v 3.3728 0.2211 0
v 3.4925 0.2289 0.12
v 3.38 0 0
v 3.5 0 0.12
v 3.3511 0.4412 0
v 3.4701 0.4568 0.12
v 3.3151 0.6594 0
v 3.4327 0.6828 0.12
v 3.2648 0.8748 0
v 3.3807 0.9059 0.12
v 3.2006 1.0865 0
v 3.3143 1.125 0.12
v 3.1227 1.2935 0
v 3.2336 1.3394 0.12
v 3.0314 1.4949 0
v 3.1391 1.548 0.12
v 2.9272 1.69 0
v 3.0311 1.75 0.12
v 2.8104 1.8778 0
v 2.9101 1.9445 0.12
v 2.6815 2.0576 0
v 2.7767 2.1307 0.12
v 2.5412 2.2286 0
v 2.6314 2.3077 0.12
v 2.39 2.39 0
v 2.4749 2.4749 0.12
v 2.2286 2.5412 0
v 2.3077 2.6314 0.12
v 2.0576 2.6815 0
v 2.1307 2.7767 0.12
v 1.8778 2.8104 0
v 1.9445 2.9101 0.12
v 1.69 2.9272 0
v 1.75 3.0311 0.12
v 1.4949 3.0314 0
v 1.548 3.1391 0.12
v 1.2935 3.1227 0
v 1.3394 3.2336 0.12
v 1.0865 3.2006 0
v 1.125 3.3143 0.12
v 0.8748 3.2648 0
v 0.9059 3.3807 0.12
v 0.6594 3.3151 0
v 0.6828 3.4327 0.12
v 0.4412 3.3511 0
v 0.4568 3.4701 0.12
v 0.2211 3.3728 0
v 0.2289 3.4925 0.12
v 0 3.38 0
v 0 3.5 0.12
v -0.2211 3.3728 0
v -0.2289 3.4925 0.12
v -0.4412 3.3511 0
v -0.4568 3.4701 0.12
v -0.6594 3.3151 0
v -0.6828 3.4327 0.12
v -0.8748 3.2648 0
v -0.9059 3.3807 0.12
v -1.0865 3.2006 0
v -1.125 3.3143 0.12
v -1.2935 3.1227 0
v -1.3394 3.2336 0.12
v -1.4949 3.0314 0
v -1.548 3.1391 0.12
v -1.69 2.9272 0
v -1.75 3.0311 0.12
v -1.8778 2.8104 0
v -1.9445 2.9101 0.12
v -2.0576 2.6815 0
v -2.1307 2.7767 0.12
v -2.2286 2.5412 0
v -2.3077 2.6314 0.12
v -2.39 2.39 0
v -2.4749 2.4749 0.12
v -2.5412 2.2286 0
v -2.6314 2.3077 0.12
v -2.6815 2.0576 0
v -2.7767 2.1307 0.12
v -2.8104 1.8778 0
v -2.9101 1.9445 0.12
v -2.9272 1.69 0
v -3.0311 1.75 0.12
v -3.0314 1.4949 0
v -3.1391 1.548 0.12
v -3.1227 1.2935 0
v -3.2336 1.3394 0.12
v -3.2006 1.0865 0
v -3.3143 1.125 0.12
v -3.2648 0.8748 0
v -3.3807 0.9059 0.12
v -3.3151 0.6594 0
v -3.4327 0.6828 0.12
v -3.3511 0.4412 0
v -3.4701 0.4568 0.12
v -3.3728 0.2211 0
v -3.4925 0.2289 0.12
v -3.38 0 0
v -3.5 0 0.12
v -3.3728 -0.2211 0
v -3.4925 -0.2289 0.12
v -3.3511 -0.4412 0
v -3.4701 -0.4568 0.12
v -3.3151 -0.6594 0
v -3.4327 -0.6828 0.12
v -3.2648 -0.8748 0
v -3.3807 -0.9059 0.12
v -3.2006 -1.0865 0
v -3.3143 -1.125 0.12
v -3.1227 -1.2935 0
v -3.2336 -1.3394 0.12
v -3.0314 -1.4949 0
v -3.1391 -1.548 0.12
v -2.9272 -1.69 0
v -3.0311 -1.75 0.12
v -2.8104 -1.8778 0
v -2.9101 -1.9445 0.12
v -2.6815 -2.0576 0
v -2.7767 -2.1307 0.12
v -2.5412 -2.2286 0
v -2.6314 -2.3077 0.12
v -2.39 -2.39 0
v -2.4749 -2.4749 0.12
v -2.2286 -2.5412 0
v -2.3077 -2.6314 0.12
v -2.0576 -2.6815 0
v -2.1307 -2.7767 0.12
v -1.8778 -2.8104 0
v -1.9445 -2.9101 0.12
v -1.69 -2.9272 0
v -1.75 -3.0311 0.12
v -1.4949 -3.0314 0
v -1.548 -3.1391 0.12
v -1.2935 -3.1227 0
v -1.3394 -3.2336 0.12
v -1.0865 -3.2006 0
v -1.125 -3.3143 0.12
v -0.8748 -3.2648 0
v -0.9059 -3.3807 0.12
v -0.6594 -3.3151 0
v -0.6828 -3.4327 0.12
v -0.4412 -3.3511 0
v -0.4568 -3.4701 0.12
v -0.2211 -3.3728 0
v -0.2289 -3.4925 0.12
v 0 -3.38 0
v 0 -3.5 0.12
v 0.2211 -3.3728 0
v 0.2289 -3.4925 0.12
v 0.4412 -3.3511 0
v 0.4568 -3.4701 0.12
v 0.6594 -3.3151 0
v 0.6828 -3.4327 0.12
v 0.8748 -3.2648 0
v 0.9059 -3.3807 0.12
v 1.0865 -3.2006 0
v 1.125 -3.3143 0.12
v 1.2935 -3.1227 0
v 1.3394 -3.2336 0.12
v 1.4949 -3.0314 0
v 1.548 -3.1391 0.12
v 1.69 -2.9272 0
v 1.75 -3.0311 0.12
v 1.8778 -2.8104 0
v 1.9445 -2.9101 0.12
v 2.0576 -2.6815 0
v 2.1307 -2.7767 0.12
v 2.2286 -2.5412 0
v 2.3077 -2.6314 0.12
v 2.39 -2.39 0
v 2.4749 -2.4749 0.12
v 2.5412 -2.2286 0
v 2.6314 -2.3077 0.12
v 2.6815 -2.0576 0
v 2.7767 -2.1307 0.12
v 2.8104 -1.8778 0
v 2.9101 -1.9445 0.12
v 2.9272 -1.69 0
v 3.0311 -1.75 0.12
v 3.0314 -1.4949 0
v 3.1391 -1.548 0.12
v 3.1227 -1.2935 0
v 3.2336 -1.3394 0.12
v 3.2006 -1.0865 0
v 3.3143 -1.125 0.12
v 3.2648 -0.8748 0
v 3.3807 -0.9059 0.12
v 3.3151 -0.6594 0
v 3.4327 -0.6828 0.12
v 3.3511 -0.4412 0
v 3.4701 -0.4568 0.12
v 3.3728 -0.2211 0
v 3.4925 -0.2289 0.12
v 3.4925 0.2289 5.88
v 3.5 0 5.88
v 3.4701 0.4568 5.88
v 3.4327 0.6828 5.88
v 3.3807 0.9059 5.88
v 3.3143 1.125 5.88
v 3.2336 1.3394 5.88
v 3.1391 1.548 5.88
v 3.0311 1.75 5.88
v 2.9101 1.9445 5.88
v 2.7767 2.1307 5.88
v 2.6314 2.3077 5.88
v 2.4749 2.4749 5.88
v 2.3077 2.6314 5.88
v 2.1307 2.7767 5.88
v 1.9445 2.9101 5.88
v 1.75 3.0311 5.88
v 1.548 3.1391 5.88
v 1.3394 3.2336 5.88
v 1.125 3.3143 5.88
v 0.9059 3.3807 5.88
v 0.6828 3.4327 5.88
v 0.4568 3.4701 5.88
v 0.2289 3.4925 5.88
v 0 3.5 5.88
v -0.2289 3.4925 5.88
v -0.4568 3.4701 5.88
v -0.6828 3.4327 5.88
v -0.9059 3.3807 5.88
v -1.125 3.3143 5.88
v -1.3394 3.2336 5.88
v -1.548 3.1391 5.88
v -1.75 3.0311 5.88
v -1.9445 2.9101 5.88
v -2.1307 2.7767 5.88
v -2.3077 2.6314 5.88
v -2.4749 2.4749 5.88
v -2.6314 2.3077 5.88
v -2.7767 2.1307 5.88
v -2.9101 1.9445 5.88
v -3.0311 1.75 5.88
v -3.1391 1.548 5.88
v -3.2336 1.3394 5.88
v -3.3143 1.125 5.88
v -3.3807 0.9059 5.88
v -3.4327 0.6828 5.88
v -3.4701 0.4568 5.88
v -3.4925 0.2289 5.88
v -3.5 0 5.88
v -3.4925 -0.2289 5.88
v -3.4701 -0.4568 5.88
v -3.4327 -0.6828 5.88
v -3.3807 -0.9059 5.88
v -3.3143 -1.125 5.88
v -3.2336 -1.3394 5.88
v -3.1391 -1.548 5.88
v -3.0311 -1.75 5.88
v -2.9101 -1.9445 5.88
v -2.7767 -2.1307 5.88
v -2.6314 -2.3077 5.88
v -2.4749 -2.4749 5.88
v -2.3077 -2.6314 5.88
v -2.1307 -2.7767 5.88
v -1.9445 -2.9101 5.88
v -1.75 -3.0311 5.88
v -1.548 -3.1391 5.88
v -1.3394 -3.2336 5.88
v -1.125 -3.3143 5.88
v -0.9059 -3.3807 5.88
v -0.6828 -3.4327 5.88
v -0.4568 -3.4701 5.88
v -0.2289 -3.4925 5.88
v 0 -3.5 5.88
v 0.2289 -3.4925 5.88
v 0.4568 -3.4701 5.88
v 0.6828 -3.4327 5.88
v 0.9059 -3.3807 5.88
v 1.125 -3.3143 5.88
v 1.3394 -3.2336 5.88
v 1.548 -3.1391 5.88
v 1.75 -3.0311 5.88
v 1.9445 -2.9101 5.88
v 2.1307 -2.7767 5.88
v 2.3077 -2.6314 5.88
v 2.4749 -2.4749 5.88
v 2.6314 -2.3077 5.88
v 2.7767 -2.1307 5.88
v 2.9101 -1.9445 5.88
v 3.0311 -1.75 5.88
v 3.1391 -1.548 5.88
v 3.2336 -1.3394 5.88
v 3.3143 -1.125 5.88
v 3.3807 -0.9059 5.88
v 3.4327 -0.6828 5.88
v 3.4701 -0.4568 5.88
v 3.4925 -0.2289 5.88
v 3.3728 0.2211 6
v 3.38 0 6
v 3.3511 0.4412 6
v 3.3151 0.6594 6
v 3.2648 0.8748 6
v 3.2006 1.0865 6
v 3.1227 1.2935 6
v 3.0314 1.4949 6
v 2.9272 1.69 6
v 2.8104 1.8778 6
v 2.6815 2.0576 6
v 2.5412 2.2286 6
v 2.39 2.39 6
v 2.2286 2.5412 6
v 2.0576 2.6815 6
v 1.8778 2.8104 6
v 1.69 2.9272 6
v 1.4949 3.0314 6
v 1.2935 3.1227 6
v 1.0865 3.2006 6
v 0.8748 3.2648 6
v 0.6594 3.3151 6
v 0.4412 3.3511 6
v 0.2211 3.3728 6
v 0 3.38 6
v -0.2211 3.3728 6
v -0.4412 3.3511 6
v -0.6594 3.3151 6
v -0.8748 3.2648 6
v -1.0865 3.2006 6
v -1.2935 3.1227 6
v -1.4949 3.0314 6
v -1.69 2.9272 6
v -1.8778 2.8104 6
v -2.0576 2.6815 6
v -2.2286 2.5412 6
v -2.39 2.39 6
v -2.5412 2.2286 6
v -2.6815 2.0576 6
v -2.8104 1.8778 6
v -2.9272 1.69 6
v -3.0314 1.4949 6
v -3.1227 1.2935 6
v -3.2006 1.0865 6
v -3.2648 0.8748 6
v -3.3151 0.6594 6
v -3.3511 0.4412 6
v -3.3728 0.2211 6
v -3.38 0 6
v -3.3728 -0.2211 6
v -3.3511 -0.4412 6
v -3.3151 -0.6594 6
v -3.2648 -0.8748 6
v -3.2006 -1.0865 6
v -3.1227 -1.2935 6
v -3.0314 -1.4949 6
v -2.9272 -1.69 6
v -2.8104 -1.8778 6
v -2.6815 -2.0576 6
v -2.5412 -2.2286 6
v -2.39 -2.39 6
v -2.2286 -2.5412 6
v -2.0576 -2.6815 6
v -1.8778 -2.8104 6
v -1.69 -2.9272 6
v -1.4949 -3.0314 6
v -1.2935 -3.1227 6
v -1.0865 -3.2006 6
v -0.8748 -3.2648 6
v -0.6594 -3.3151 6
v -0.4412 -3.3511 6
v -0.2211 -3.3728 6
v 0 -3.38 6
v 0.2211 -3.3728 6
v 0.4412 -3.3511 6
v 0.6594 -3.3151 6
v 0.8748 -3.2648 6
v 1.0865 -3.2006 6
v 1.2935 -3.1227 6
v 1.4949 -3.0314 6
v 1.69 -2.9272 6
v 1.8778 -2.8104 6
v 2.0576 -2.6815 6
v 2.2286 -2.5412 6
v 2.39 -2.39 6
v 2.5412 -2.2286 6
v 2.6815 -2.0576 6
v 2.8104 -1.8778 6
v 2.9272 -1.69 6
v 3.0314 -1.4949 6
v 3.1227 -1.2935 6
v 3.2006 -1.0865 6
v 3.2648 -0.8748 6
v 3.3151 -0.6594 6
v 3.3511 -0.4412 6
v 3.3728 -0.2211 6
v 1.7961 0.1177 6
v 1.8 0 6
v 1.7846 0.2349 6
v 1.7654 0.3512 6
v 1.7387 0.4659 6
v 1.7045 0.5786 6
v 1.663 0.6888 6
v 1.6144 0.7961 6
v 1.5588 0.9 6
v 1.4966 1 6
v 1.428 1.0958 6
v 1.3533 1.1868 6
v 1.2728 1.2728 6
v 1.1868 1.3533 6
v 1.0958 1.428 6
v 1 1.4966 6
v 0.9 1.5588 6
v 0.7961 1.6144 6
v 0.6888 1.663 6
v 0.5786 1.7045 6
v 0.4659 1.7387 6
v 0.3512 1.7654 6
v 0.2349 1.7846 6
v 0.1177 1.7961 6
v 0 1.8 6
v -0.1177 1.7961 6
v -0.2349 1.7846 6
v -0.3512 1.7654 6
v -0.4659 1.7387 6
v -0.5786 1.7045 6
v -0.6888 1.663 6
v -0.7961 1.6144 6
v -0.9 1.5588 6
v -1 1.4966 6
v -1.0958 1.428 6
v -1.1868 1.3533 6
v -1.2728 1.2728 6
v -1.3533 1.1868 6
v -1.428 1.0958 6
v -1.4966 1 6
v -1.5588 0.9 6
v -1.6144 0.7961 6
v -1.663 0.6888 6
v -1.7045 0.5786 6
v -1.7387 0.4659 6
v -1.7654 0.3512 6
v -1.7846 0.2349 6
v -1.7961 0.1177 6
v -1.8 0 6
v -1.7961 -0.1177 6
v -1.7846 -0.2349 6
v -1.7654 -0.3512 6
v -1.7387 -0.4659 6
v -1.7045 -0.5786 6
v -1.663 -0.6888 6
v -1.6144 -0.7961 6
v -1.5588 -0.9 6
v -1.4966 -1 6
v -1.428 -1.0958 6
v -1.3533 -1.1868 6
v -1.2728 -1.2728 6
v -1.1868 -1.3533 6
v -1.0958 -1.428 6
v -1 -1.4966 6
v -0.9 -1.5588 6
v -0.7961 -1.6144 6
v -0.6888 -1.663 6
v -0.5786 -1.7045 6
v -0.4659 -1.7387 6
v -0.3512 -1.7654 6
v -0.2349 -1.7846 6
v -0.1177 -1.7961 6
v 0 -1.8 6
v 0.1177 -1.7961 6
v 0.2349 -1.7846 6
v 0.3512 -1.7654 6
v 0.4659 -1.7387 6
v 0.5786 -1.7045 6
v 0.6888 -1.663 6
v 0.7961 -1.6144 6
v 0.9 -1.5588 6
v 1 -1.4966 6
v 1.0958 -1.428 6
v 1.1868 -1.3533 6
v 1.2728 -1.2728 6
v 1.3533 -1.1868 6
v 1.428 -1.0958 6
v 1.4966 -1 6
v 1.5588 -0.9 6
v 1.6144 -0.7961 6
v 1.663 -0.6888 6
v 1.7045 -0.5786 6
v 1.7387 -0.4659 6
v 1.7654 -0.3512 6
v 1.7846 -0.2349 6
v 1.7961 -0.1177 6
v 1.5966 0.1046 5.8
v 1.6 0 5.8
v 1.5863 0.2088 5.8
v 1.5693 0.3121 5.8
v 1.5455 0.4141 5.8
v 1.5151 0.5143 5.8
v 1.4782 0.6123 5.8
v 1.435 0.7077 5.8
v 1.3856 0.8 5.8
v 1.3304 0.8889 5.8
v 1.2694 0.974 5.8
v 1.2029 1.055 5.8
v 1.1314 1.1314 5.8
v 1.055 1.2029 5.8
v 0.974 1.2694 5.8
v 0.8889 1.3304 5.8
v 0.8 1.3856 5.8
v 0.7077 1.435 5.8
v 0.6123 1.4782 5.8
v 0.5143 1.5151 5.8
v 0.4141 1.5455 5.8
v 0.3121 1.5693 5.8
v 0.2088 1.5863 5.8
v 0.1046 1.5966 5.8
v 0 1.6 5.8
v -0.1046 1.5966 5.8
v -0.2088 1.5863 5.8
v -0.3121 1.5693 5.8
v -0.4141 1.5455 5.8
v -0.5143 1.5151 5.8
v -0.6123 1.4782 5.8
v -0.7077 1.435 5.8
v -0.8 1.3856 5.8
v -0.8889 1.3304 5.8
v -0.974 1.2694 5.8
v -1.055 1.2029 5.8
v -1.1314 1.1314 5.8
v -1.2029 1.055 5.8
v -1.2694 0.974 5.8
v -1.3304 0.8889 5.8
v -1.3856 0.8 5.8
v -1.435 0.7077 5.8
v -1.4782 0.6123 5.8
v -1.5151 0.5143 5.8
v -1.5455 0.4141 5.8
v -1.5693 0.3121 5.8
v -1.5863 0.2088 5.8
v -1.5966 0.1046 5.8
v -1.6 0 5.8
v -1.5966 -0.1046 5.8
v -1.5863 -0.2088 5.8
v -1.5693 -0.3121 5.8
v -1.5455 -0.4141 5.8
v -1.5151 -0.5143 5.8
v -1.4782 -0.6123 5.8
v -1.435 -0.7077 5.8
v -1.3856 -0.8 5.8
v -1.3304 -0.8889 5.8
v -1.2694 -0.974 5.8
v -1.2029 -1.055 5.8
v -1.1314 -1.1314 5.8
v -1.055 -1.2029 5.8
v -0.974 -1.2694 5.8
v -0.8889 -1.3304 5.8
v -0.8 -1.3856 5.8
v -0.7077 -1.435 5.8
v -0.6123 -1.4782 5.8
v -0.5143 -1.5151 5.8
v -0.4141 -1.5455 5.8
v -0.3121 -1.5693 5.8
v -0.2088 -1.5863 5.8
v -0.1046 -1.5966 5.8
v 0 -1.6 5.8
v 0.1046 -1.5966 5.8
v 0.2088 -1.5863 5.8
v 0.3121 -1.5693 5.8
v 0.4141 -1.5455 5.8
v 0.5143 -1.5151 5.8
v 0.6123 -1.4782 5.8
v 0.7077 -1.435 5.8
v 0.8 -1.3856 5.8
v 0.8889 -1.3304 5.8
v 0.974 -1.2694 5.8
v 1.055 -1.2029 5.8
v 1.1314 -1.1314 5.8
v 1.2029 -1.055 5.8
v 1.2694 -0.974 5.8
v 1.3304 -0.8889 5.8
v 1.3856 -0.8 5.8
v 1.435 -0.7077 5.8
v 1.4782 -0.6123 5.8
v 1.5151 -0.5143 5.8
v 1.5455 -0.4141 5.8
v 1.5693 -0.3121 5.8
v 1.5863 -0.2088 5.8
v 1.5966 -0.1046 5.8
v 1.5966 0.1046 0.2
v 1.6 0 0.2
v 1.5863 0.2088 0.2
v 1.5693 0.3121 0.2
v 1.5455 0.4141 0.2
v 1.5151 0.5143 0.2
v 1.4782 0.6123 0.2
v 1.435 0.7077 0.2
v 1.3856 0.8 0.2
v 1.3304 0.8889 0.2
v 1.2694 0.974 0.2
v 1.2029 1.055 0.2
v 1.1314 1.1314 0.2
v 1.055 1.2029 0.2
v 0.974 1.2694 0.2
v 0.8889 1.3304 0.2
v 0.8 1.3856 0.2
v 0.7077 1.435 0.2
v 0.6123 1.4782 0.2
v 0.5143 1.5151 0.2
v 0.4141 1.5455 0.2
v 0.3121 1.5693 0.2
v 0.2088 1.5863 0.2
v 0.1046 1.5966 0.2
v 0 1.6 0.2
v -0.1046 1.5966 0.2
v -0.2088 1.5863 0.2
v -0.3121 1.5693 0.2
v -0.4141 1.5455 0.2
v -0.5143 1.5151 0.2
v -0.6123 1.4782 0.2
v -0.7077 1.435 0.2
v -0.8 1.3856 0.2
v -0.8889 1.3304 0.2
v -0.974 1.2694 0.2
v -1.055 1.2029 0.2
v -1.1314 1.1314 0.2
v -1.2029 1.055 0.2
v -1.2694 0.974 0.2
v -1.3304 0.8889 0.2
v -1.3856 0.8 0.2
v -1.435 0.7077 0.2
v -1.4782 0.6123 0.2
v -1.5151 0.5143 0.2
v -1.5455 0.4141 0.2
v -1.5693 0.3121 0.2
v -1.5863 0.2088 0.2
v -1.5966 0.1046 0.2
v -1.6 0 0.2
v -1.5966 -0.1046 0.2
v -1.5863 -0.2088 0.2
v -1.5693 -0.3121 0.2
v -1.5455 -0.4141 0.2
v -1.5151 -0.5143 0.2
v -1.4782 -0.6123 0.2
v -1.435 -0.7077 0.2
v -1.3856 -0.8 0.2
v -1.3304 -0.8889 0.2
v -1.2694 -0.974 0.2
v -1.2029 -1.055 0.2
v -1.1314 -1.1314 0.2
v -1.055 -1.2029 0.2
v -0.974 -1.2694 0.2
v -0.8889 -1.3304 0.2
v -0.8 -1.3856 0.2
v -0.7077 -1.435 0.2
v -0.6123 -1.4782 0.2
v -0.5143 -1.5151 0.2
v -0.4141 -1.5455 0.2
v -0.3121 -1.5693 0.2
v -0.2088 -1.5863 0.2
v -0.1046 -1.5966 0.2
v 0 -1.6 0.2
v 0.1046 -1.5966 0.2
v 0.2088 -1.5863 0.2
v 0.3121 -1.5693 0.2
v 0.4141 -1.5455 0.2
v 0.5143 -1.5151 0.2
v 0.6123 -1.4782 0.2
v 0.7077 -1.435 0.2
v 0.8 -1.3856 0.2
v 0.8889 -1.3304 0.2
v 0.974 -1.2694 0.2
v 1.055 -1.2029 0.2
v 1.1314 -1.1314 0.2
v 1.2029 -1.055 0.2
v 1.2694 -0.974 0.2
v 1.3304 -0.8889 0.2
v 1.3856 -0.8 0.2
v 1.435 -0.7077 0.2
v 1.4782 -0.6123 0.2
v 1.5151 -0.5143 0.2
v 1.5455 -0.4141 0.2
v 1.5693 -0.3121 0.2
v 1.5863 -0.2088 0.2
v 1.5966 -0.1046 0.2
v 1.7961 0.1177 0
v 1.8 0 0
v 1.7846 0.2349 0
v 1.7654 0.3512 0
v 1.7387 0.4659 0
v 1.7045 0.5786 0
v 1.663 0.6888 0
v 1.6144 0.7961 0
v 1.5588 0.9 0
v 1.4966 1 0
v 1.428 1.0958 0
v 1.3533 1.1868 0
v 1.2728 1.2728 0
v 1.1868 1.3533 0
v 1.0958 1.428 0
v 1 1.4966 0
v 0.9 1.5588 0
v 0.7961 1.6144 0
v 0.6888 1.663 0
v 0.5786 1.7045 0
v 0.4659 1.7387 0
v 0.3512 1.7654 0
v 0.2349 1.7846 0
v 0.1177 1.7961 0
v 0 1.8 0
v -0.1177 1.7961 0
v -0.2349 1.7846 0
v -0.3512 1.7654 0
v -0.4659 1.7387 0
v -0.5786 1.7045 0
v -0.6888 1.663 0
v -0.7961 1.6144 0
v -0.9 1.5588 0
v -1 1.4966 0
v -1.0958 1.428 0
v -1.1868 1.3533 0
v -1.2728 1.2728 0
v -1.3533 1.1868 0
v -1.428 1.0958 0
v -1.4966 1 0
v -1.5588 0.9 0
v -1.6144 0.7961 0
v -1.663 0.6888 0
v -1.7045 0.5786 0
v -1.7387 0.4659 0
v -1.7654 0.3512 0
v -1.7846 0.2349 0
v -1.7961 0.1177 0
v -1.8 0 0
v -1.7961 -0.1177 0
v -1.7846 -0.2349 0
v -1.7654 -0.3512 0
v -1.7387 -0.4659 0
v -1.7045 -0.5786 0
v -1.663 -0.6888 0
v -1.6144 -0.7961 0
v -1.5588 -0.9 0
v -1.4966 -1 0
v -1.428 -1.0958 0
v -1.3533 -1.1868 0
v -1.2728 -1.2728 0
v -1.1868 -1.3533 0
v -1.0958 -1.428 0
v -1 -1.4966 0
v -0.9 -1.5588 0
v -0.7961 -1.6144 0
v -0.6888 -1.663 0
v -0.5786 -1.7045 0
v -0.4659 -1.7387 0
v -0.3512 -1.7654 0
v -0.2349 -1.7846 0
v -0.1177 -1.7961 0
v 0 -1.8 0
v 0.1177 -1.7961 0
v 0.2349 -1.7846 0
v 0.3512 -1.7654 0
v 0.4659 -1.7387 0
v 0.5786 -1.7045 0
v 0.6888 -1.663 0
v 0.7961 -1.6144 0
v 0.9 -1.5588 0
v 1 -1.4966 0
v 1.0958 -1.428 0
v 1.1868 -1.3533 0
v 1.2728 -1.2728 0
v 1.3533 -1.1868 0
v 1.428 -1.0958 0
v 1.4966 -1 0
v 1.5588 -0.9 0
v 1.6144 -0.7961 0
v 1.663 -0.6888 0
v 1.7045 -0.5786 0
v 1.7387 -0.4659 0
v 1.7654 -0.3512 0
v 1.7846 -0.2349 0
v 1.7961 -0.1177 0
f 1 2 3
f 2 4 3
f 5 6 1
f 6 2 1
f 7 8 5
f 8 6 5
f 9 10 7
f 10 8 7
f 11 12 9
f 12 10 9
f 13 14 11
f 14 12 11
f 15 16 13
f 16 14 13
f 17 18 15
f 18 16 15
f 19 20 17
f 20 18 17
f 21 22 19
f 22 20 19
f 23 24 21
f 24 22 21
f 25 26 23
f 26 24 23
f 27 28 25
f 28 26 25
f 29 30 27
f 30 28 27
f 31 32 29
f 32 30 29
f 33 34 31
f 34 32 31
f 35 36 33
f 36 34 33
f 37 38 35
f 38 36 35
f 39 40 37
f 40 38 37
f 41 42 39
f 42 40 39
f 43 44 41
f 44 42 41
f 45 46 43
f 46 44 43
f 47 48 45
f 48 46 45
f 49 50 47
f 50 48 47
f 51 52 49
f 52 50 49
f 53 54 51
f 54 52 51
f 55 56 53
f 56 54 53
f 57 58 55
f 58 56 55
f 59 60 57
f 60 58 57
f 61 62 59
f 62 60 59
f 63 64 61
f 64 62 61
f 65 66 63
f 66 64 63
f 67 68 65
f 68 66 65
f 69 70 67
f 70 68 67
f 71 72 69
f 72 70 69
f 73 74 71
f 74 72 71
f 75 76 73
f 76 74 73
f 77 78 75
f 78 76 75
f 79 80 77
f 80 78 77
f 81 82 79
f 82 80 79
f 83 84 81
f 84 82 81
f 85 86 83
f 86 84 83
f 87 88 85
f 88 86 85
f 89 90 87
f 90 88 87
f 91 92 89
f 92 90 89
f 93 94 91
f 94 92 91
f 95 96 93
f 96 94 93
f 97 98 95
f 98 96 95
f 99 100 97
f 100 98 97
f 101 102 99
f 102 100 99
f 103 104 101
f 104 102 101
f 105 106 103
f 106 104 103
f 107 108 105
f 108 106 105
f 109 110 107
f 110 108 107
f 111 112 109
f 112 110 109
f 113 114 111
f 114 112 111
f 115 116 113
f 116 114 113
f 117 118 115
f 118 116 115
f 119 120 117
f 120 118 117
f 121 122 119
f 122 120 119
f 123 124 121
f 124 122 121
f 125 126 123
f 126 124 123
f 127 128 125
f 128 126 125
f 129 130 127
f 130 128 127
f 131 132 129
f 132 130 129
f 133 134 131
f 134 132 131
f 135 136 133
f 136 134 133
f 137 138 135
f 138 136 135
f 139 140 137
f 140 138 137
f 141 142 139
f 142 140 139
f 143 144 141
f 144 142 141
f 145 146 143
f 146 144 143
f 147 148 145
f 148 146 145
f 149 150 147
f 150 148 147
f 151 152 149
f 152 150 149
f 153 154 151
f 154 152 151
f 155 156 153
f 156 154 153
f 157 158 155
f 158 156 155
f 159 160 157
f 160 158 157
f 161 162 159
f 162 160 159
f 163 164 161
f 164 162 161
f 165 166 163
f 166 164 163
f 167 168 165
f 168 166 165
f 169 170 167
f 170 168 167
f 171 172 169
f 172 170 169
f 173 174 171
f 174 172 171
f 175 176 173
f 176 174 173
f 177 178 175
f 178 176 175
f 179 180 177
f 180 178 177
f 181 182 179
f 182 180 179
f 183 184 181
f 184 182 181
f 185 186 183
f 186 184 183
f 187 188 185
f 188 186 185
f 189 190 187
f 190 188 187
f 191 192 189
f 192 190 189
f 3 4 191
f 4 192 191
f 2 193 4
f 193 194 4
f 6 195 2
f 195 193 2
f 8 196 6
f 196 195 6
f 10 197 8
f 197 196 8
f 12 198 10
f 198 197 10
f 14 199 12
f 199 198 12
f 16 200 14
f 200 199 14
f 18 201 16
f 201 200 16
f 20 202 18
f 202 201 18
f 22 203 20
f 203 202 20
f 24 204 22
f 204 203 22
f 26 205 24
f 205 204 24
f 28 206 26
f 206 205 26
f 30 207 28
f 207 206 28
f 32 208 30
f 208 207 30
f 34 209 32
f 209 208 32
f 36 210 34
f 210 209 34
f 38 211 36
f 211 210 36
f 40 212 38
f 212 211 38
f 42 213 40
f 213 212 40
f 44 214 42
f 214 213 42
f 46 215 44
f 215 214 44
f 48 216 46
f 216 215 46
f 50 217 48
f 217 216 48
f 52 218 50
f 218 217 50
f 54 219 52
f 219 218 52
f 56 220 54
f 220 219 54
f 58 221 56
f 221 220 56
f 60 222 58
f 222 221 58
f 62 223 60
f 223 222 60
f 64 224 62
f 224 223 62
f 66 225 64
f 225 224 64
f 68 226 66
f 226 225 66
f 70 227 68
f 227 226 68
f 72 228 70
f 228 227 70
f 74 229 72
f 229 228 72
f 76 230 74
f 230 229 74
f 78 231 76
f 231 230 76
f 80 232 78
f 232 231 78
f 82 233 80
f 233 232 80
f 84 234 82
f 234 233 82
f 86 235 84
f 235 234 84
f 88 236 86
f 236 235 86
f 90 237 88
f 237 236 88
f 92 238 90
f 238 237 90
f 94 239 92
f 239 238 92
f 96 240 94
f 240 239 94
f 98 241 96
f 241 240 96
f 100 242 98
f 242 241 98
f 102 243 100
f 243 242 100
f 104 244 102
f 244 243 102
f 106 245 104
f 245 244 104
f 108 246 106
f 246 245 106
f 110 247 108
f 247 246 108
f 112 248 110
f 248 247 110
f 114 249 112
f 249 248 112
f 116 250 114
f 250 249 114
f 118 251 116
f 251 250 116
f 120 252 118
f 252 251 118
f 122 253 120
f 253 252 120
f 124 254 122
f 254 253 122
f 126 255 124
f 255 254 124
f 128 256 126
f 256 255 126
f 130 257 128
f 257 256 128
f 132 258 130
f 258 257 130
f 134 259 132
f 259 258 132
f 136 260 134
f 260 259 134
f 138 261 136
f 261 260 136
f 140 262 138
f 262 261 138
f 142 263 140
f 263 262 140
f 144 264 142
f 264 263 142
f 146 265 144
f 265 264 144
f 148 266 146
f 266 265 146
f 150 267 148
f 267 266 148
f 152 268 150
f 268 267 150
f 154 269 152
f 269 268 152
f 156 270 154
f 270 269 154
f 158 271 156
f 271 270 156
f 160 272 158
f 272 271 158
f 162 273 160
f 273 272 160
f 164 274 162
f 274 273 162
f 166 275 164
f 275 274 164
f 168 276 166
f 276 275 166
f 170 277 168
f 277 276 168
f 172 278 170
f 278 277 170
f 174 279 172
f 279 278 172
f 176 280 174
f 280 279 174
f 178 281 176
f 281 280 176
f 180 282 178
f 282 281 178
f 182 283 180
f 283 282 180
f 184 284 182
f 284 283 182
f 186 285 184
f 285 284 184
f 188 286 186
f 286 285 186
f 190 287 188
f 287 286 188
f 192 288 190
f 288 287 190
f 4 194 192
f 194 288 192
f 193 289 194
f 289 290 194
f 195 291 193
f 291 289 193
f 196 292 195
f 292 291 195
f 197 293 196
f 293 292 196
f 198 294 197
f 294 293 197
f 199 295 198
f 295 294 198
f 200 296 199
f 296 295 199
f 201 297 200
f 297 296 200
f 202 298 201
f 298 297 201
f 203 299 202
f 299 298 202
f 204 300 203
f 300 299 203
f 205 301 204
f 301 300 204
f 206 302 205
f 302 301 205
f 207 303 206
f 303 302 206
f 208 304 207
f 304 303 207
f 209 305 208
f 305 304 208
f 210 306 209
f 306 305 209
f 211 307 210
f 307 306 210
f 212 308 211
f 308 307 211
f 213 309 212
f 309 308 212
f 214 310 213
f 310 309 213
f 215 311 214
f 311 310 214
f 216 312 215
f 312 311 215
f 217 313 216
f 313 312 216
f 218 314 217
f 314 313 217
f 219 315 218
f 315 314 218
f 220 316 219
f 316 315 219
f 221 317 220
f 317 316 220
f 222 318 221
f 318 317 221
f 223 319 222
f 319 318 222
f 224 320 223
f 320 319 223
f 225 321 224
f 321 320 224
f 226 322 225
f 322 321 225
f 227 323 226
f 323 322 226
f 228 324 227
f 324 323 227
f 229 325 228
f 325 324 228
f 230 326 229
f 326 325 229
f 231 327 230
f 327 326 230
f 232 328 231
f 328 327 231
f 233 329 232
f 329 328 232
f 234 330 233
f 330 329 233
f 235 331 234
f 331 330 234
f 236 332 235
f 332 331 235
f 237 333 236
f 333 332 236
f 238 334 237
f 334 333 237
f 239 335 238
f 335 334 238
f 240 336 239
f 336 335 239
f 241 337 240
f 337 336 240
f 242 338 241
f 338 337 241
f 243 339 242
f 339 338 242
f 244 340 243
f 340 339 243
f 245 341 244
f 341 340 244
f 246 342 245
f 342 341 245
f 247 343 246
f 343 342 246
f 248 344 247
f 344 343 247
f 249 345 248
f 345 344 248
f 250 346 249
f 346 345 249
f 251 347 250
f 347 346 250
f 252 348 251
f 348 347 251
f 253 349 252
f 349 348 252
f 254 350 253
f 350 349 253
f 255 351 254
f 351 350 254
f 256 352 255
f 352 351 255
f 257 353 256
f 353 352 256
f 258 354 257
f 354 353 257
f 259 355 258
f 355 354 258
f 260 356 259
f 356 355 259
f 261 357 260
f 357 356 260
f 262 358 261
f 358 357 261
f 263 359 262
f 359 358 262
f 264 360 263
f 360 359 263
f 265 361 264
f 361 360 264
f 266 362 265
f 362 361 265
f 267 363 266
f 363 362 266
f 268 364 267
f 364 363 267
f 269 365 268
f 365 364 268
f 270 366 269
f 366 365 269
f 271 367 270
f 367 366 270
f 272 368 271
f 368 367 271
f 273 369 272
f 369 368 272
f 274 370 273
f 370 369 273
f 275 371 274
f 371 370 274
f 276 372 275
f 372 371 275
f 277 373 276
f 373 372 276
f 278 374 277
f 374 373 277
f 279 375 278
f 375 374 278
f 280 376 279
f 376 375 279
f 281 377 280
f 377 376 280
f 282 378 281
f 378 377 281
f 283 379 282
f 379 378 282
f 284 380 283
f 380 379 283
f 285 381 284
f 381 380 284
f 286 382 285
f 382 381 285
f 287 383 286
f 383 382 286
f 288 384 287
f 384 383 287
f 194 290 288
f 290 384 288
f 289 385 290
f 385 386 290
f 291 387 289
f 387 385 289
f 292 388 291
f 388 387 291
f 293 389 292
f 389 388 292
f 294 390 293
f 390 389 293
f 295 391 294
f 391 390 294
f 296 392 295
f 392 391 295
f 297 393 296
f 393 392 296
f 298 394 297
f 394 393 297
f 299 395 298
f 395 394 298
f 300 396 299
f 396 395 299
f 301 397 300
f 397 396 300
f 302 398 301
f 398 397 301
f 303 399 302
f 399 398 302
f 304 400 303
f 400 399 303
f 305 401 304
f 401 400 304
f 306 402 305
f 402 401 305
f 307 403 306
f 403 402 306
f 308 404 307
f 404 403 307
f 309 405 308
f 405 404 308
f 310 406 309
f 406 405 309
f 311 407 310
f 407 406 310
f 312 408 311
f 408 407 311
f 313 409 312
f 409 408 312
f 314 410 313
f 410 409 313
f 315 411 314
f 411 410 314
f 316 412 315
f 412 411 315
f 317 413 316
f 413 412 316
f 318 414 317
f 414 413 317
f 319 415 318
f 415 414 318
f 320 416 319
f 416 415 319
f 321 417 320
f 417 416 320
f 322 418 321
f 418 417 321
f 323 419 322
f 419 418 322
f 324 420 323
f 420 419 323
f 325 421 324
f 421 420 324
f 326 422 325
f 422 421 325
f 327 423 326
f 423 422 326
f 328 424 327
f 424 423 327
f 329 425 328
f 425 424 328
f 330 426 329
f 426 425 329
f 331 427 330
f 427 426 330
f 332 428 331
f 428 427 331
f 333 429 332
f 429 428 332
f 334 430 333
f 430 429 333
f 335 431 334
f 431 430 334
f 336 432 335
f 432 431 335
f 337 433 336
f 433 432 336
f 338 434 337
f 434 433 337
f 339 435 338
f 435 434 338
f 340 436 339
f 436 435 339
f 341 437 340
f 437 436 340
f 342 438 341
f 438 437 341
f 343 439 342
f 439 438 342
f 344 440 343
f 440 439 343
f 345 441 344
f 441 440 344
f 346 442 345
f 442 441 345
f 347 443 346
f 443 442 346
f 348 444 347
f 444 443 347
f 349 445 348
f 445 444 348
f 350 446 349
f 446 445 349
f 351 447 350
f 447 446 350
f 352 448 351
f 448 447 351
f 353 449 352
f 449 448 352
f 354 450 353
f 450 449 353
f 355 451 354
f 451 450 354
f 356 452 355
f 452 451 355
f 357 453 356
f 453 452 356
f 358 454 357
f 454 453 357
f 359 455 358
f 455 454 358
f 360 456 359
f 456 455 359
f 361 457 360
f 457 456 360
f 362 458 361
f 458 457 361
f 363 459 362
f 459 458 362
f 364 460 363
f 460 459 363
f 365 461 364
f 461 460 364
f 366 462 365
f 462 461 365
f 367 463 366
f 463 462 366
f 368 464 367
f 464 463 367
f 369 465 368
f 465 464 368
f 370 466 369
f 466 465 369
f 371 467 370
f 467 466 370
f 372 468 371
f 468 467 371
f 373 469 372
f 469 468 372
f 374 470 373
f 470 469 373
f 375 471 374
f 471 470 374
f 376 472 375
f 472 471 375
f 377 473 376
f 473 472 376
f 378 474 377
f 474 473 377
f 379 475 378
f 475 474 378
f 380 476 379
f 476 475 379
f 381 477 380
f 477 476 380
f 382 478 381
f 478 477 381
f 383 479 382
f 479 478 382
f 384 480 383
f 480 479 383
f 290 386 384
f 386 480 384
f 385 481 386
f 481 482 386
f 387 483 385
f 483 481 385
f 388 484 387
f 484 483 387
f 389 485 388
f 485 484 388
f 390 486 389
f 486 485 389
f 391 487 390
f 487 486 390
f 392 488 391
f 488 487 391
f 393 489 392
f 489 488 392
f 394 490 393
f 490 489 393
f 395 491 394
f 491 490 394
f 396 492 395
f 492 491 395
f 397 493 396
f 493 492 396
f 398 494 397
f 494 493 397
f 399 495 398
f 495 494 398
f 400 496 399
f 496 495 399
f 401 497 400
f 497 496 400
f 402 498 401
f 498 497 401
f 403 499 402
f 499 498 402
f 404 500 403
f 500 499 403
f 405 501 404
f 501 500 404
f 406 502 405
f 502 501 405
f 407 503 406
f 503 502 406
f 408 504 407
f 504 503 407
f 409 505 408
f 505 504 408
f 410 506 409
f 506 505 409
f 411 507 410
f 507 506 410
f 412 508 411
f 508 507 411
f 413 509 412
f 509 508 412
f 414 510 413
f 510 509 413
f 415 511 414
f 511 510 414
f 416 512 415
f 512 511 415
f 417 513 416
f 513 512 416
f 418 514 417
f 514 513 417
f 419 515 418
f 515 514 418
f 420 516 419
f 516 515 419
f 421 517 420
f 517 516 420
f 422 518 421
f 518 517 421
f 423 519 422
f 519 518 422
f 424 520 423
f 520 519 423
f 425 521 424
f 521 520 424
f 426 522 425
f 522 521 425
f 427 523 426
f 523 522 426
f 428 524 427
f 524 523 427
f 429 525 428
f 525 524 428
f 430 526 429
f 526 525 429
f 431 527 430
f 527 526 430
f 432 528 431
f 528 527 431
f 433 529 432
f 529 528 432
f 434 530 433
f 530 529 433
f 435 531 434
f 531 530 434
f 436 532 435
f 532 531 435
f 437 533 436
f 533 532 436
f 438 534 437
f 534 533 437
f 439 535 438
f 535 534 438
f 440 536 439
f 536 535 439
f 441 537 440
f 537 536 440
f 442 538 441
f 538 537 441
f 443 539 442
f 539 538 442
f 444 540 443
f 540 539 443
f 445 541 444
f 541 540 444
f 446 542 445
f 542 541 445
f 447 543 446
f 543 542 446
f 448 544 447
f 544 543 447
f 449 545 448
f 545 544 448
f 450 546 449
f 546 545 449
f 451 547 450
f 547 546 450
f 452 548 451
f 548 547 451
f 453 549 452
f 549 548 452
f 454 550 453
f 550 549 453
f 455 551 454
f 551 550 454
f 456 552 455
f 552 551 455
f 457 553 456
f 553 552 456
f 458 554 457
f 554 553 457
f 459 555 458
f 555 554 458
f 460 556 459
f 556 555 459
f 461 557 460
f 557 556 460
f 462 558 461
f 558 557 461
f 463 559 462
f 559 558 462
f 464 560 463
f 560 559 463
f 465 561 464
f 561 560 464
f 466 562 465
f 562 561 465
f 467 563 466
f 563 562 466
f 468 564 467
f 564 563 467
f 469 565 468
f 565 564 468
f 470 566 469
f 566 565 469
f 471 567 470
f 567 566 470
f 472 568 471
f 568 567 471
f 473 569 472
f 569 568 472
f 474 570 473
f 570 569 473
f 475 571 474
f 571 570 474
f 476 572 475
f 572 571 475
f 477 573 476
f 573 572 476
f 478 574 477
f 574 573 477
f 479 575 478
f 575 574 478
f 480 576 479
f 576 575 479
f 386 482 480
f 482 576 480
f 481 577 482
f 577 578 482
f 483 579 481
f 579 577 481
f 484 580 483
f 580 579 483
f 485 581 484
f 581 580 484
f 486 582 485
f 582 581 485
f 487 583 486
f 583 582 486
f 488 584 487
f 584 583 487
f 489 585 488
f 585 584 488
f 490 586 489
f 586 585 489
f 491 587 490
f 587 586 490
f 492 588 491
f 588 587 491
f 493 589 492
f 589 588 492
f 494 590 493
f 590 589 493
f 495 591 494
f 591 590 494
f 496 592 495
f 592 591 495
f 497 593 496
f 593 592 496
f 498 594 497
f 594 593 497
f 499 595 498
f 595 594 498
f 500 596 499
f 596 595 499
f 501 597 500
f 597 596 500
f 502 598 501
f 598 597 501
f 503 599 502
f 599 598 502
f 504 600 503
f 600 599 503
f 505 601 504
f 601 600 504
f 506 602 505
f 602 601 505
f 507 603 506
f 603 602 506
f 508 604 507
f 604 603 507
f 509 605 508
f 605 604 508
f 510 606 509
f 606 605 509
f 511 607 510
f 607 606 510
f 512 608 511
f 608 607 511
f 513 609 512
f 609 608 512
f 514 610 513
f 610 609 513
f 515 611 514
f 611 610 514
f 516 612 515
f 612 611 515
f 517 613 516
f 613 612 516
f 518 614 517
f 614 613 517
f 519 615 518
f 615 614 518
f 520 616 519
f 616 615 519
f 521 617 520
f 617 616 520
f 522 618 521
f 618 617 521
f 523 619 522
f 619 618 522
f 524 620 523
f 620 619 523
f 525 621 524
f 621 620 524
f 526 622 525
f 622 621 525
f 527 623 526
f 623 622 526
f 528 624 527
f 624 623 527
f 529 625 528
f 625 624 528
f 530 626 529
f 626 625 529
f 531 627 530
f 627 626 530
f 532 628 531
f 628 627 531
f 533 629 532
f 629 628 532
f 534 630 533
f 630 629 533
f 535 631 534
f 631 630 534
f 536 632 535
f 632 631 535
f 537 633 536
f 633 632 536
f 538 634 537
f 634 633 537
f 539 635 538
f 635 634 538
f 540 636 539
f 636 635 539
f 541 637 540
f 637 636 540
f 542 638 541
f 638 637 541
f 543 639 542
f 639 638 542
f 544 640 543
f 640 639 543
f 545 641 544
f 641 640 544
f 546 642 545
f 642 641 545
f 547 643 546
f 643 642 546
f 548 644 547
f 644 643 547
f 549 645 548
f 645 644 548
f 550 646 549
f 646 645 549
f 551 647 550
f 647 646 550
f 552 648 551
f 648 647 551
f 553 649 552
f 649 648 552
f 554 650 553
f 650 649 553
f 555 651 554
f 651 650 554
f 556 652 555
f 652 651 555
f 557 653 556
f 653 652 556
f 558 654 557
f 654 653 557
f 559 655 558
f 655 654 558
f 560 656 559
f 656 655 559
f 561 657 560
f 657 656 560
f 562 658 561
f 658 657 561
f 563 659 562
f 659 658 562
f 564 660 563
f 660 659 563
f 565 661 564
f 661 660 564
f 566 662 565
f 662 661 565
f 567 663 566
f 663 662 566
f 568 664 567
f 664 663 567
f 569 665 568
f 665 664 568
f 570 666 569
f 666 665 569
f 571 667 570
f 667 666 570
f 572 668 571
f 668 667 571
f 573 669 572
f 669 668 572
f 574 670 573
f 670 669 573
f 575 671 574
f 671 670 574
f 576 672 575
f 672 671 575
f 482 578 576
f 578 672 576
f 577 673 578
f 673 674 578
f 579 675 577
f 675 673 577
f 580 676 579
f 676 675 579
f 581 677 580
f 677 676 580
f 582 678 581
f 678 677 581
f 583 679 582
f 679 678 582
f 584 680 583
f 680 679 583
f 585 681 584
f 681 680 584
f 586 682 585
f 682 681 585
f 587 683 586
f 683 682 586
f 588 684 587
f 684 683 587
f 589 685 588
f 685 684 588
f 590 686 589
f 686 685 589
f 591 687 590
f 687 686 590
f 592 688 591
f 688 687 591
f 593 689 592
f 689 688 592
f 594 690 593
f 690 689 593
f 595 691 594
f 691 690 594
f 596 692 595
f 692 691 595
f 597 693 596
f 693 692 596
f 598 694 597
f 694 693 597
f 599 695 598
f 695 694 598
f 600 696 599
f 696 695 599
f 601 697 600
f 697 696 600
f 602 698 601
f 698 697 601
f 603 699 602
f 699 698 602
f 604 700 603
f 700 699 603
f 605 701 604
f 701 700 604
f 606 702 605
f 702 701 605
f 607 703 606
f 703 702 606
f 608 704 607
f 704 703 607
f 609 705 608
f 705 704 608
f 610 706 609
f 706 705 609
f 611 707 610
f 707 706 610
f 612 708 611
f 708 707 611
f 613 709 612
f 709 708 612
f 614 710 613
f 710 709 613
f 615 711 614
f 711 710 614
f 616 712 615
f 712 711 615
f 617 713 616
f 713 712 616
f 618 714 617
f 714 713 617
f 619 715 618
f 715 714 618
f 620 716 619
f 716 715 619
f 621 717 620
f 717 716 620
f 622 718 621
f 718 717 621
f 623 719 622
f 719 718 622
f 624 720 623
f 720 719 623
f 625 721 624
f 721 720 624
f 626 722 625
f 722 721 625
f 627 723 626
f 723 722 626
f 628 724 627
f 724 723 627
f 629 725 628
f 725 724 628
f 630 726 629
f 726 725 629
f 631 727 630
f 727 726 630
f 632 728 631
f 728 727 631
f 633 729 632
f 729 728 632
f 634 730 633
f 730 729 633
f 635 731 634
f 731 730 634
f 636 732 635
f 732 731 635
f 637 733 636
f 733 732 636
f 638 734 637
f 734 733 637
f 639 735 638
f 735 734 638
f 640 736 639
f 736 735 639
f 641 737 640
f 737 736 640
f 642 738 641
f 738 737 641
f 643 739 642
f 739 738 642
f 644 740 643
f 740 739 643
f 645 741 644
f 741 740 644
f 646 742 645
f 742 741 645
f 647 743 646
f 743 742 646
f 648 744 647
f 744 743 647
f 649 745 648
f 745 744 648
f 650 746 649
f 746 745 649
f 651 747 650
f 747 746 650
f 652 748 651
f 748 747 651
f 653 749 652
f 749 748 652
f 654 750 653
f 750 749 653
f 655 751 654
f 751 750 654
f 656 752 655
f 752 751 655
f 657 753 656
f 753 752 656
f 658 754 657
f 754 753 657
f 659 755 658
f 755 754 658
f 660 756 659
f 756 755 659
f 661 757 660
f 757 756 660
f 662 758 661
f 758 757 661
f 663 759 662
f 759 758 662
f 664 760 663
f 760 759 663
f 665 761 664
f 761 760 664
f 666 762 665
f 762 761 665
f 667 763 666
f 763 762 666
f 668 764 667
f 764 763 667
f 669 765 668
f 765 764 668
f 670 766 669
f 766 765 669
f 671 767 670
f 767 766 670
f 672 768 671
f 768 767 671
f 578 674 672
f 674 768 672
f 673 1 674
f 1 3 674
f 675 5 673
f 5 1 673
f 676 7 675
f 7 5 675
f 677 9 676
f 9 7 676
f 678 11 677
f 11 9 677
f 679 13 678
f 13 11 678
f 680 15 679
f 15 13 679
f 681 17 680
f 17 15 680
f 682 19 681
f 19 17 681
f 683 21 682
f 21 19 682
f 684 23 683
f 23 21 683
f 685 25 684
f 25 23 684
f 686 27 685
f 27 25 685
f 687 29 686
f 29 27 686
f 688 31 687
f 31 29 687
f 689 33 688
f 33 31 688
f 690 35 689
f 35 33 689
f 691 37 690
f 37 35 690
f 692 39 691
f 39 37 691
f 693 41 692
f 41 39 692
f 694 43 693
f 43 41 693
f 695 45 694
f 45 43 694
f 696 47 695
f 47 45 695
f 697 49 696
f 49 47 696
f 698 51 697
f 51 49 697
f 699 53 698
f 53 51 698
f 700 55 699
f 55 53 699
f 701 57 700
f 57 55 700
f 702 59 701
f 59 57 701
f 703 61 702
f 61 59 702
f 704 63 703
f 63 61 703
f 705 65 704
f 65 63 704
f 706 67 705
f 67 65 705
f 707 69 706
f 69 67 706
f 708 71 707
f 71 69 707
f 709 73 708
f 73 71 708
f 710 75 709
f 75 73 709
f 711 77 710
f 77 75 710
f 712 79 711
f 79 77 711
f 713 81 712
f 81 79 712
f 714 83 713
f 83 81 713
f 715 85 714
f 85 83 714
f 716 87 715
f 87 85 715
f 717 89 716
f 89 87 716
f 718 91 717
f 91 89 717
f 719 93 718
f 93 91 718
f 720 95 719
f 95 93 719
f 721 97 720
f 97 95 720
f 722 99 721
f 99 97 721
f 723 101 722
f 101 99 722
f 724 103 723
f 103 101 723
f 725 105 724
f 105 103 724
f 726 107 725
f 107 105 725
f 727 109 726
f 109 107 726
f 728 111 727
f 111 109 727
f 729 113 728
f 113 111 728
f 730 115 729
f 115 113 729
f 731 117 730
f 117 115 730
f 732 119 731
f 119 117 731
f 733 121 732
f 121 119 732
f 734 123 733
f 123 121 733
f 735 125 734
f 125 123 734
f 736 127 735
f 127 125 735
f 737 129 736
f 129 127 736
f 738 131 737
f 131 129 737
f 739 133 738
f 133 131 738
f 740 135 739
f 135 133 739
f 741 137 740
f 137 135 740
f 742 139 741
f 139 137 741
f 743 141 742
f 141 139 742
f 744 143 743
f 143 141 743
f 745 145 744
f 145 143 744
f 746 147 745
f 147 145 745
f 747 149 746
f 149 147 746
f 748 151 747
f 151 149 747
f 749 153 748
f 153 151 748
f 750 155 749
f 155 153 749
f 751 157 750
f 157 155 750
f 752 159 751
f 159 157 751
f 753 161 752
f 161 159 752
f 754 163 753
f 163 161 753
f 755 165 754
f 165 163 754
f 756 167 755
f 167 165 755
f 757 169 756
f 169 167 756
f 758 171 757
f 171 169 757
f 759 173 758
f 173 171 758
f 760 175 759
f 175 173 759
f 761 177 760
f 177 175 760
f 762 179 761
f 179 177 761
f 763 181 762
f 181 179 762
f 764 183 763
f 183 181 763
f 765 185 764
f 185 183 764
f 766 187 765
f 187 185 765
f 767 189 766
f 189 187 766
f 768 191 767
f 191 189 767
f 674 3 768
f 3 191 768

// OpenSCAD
// OOMP generic catalogue model; units: mm.
// Stud length is additional to body depth. Tapping depths are model assumptions.
variant = "full"; // [full, display]
family = "spacer";
connection_type = "plain";
depth_mm = 6;
stud_length_mm = 0;
tapped_depth_mm = 0;
bore_mm = 3.2;
outer_diameter_mm = 7;
across_flats_mm = 6;
thread_nominal_diameter_mm = 3;
thread_pitch_mm = 0.5;
edge_chamfer_mm = 0.12;
mouth_chamfer_mm = 0.2;
angular_segments = 96;
samples_per_pitch = 16;

// Boundary travels up the outside, then down any tapped/plain bore.
// Equal-height rings at shoulders form the annular shoulder faces.
n = angular_segments;
threaded = family == "standoff";
has_stud = connection_type == "stud_to_tapped" || connection_type == "stud_to_stud";
two_studs = connection_type == "stud_to_stud";
through = !threaded || connection_type == "tapped_to_tapped";
pitch = thread_pitch_mm;
diameter = threaded ? thread_nominal_diameter_mm : bore_mm;
minor = diameter - 5*sqrt(3)*pitch/8;
transition = mouth_chamfer_mm + (threaded ? 5*sqrt(3)*pitch/16 : 0);
tip_chamfer = mouth_chamfer_mm + 17*sqrt(3)*pitch/48;
function sorted(v) = len(v)<=1 ? v : let(p=v[0])
    concat(sorted([for(x=v) if(x<p-1e-8) x]), [p], sorted([for(x=v) if(x>p+1e-8) x]));
function reverse(v) = [for(i=[len(v)-1:-1:0]) v[i]];
function theta(i) = i*360/n;
function fract(x) = x-floor(x);
function phase_distance(i,z) = abs(fract(z/pitch-theta(i)/360+0.5)-0.5);
function thread_r(i,z) = minor/2 + min(5*sqrt(3)*pitch/16,
    max(0,(phase_distance(i,z)-0.125)*pitch*sqrt(3)));
function stud_r(i,z,tip) = min(diameter/2 - (variant=="full" ?
    min(17*sqrt(3)*pitch/48,max(0,(phase_distance(i,z)-0.0625)*pitch*sqrt(3))) : 0),
    diameter/2-tip_chamfer+abs(z-tip));
function body_r(i,z) = (threaded ? across_flats_mm/2/cos(theta(i)%60-30) : outer_diameter_mm/2)
    - max(0,edge_chamfer_mm-min(z,depth_mm-z));
function bore_r(i,z) = max(threaded ? (variant=="full" ? thread_r(i,z) : minor/2) : diameter/2,
    diameter/2+mouth_chamfer_mm-(through ? min(z,depth_mm-z) : depth_mm-z));
function stud_z(a,b,tip) = let(count=variant=="full" ? ceil(stud_length_mm/pitch*samples_per_pitch) : 1)
    sorted(concat([for(i=[0:count]) a+(b-a)*i/count], [tip==a ? tip+tip_chamfer : tip-tip_chamfer]));
body_z = sorted([0,edge_chamfer_mm,depth_mm-edge_chamfer_mm,depth_mm]);
low = through ? 0 : depth_mm-tapped_depth_mm;
count = threaded && variant=="full" ? ceil((depth_mm-low)/pitch*samples_per_pitch) : 1;
bore_z = two_studs ? [] : reverse(sorted(concat(
    [for(i=[0:count]) low+(depth_mm-low)*i/count],
    [depth_mm-mouth_chamfer_mm,depth_mm-transition],
    through ? [mouth_chamfer_mm,transition] : [])));
// Ring descriptors: [height, kind, tip]. Kind: 0 body, 1 stud, 2 bore.
rings = concat(
    has_stud ? [for(z=stud_z(-stud_length_mm,0,-stud_length_mm)) [z,1,-stud_length_mm]] : [],
    [for(z=body_z) [z,0,0]],
    two_studs ? [for(z=stud_z(depth_mm,depth_mm+stud_length_mm,depth_mm+stud_length_mm)) [z,1,depth_mm+stud_length_mm]] : [],
    [for(z=bore_z) [z,2,0]]);
function radius(i,ring) = ring[1]==0 ? body_r(i,ring[0]) :
    ring[1]==1 ? stud_r(i,ring[0],ring[2]) : bore_r(i,ring[0]);
points = concat([for(ring=rings) for(i=[0:n-1])
    [radius(i,ring)*cos(theta(i)),radius(i,ring)*sin(theta(i)),ring[0]]],
    through ? [] : [[0,0,rings[0][0]],[0,0,rings[len(rings)-1][0]]]);
center = len(rings)*n;
last = (len(rings)-1)*n;
// OpenSCAD winding is opposite to STL winding.
faces = concat(
    [for(j=[0:len(rings)-(through ? 1 : 2)]) for(i=[0:n-1]) each
        let(a=j*n+i,b=j*n+(i+1)%n,c=((j+1)%len(rings))*n+(i+1)%n,d=((j+1)%len(rings))*n+i)
        [[a,c,b],[a,d,c]]],
    through ? [] : [for(i=[0:n-1]) each let(k=(i+1)%n)
        [[center,i,k],[center+1,last+k,last+i]]]);
assert(family=="spacer" || family=="standoff");
assert(!threaded || connection_type=="tapped_to_tapped" || has_stud);
assert(depth_mm>0 && diameter>0 && pitch>0);
assert(variant=="full" || variant=="display");
assert(n>=24 && n%12==0 && samples_per_pitch>=8);
assert(mouth_chamfer_mm>0 && mouth_chamfer_mm<depth_mm/2);
assert(edge_chamfer_mm>=0 && edge_chamfer_mm<depth_mm/2);
assert(diameter+4*max(mouth_chamfer_mm,edge_chamfer_mm) < (threaded ? across_flats_mm : outer_diameter_mm));
assert(!has_stud || stud_length_mm>2*mouth_chamfer_mm);
assert(!through || !threaded || 2*transition<depth_mm);
assert(connection_type!="stud_to_tapped" || (tapped_depth_mm>transition && tapped_depth_mm<depth_mm));
color([0.86,0.85,0.81]) polyhedron(points=points,faces=faces,convexity=20);
